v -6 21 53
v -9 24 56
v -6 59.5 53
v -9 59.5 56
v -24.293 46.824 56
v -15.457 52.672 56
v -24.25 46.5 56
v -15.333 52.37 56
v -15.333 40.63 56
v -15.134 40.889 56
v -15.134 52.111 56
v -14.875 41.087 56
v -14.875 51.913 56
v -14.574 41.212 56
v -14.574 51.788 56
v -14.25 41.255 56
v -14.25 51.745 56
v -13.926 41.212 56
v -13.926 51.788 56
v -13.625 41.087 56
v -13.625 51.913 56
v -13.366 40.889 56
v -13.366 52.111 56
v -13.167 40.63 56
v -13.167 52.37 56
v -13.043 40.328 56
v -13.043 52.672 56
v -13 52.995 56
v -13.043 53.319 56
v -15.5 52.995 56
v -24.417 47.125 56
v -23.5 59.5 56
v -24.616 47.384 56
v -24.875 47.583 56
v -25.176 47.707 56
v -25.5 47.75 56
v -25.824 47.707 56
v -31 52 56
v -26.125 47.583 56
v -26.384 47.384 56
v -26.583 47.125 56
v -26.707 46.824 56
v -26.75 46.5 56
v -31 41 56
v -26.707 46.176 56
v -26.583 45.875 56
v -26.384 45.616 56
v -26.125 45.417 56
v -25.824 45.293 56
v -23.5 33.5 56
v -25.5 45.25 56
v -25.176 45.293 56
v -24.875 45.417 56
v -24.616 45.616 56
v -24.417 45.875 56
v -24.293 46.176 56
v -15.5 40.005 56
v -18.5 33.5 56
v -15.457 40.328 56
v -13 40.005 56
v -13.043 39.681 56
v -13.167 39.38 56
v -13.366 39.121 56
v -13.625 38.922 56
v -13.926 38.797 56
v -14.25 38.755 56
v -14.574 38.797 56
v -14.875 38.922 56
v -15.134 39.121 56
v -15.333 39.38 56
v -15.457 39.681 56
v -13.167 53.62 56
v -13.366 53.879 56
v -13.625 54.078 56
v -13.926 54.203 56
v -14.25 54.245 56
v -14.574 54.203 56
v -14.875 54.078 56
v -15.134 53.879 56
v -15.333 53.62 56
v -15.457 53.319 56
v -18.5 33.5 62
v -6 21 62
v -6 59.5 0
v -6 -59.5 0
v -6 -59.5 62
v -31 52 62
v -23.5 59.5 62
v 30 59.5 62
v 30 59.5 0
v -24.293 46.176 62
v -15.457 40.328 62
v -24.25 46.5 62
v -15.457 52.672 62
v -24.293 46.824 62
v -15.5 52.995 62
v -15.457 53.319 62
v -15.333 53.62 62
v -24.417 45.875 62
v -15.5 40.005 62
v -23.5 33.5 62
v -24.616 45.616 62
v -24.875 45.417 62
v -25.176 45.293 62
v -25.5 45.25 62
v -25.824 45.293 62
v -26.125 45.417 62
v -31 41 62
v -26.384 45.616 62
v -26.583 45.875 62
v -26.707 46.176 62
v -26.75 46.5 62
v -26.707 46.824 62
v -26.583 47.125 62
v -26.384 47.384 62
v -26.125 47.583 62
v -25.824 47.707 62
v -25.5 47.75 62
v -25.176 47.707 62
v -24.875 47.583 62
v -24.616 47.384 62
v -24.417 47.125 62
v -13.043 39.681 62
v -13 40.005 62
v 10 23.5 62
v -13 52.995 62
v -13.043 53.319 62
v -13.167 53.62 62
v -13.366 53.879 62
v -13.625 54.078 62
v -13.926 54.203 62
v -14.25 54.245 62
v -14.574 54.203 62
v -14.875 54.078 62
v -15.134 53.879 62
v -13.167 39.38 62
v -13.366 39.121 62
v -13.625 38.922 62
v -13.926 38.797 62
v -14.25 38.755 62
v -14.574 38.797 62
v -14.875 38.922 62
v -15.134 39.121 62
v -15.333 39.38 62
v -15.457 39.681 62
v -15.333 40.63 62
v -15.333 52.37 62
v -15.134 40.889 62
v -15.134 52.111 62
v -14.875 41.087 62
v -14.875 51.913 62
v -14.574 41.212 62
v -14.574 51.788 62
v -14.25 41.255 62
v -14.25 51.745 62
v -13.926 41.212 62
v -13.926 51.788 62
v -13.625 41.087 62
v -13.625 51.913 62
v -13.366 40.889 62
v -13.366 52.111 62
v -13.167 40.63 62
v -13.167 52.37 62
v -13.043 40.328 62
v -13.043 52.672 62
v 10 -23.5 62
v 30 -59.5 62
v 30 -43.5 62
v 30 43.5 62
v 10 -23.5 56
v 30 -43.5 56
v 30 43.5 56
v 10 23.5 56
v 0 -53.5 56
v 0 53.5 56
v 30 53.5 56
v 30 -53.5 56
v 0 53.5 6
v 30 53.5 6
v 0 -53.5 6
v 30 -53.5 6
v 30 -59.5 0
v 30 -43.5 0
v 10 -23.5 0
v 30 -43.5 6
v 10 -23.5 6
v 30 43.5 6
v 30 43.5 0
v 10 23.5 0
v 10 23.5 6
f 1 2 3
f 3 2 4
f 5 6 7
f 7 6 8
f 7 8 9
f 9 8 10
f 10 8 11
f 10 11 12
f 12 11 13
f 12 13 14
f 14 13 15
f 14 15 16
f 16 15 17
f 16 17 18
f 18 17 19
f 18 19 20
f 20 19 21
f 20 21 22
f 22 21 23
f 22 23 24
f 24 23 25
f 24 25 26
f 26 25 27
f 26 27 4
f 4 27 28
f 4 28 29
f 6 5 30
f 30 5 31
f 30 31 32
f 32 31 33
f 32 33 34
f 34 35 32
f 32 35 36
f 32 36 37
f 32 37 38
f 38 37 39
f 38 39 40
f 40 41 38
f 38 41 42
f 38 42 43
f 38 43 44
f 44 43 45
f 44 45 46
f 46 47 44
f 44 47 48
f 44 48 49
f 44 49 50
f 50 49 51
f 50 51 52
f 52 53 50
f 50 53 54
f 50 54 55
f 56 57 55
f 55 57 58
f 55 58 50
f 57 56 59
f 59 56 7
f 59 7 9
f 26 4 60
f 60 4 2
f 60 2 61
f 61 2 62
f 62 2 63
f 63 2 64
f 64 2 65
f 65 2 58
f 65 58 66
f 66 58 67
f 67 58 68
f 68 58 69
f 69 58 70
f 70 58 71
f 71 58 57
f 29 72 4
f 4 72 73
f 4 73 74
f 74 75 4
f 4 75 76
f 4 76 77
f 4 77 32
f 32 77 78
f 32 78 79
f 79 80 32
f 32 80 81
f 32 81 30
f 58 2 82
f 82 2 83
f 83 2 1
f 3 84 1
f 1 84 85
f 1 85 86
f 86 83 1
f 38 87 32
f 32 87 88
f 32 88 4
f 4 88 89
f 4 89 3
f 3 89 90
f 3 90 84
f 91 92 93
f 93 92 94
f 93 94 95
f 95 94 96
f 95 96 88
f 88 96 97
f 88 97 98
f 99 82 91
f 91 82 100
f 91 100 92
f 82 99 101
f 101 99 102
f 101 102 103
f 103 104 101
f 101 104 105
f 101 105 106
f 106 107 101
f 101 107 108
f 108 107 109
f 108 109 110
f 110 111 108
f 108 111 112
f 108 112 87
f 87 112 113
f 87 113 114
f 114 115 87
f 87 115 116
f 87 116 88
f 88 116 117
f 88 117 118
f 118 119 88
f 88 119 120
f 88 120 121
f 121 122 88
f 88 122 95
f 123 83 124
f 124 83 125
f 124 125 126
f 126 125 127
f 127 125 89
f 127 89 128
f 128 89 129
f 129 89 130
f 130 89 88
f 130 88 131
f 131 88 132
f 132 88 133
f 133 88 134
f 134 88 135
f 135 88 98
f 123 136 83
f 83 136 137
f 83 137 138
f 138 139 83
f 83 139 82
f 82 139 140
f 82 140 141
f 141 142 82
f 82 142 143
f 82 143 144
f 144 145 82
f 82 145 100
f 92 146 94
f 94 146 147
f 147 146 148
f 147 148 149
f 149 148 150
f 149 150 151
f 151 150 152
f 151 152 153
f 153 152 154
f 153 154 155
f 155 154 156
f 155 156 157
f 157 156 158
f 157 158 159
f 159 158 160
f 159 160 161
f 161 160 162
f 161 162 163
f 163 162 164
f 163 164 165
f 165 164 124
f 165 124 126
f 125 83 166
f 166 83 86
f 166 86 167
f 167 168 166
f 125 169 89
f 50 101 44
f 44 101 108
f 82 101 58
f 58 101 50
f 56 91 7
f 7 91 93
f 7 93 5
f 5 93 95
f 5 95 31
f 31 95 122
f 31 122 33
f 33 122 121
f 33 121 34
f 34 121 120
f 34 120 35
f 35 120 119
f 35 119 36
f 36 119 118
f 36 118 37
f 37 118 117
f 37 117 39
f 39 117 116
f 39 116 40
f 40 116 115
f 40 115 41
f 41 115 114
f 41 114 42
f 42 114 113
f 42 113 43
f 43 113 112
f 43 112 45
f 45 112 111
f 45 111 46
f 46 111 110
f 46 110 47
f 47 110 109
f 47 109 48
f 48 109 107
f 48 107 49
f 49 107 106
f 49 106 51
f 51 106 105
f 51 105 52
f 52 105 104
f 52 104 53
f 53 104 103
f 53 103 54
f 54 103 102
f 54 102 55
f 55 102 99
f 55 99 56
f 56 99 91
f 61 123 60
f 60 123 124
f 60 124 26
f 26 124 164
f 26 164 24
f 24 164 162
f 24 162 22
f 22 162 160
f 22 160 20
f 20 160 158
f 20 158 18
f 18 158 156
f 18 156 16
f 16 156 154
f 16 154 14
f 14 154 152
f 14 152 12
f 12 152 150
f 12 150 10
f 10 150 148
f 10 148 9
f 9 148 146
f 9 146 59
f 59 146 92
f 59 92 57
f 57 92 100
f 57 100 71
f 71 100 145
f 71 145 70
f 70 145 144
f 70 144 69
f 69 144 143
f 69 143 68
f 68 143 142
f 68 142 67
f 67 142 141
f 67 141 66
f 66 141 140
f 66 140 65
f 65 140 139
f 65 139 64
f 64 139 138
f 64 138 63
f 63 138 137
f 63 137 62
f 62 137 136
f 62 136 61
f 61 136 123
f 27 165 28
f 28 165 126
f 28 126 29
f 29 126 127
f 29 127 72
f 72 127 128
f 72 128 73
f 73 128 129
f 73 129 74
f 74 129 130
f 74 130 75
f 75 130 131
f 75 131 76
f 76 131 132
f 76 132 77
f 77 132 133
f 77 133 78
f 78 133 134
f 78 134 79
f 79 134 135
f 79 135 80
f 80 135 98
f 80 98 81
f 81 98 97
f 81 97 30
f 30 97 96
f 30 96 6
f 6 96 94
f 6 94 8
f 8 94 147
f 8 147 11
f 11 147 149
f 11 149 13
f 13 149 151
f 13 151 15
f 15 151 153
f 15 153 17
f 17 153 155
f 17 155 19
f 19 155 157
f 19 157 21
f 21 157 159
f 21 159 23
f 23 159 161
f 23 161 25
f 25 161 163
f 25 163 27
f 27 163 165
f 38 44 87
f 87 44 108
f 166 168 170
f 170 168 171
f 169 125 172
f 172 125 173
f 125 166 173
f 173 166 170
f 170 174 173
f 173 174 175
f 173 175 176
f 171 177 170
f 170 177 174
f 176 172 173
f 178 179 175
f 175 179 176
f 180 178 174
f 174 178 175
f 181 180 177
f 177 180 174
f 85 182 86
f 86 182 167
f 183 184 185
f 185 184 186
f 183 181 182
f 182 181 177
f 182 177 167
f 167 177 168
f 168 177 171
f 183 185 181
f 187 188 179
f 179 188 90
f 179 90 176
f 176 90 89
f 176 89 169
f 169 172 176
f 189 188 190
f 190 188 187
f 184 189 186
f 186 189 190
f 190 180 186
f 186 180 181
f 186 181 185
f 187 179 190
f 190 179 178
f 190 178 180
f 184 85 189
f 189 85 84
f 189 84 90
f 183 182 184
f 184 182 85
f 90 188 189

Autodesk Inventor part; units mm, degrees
ref_plane "YZ Plane" through (0, 0, 0) normal (1, 0, 0) x (0, 1, 0)
ref_plane "XZ Plane" through (0, 0, 0) normal (0, 1, 0) x (-1, 0, 0)
ref_plane "XY Plane" through (0, 0, 0) normal (0, 0, 1) x (1, 0, 0)
sketch "Sketch1" plane through (0, 0, 0) normal (0, 0, 1) x (1, 0, 0)
  line L0 (0, 0) -> (0, 53.5)
  line L1 (0, 53.5) -> (30, 53.5)
  line L2 (30, 53.5) -> (30, 43.5)
  line L3 (30, 43.5) -> (10, 23.5)
  line L4 (10, 23.5) -> (10, 0)
  line L5 (-6, 0) -> (36, 0) projected
  line L6 (0, 0) -> (0, -53.5)
  line L7 (0, -53.5) -> (30, -53.5)
  line L8 (30, -53.5) -> (30, -43.5)
  line L9 (30, -43.5) -> (10, -23.5)
  line L10 (10, -23.5) -> (10, 0)
  dimension "d0" = 53.5
  dimension "d1" = 10
  dimension "d2" = 10
  dimension "d3" = 135
  dimension "d4" = 30
extrude "Extrusion1" add sketch "Sketch1" along normal blind 6
sketch "Sketch2" plane through (0, 0, 0) normal (0, 0, 1) x (1, 0, 0)
  line L0 (0, -53.5) -> (30, -53.5) projected
  line L1 (0, 53.5) -> (0, -53.5) projected
  line L2 (30, 53.5) -> (0, 53.5) projected
  line L3 (30, 53.5) -> (0, 53.5) projected
  line L4 (30, 53.5) -> (30, 59.5)
  line L5 (30, 59.5) -> (-6, 59.5)
  line L6 (-6, 59.5) -> (-6, -59.5)
  line L7 (-6, -59.5) -> (30, -59.5)
  line L8 (30, -59.5) -> (30, -53.5)
  point P0 (0, 0)
  dimension "d7" = 6
  dimension "d8" = 6
  dimension "d9" = 6
extrude "Extrusion2" add sketch "Sketch2" along normal blind 31
mirror "Mirror1" about plane through (12, 0, 31) normal (0, 0, 1) of "Extrusion1", "Extrusion2"
sketch "Sketch4" plane through (0, 0, 62) normal (0, 0, 1) x (1, 0, 0)
  line L0 (-6, 59.5) -> (-6, -59.5) construction
  line L1 (30, 59.5) -> (-6, 59.5) construction
  line L2 (-6, 59.5) -> (-31, 59.5)
  line L3 (-31, 59.5) -> (-31, 33.5)
  line L4 (-31, 33.5) -> (-6, 33.5)
  line L5 (-6, 59.5) -> (-6, -59.5) projected
  line L6 (-6, 59.5) -> (-6, 33.5)
  line L7 (-18, 22.2914) -> (-18, 69.8308) construction
  line L8 (-26.7913, 46.5) -> (-0.8939, 46.5) construction
  circle A0 centre (-18, 46.5) radius 7.5 construction
  circle A1 centre (-25.5, 46.5) radius 1.25
  circle A2 centre (-14.25, 40.0048) radius 1.25
  circle A3 centre (-14.25, 52.9952) radius 1.25
  point P0 (0, 0)
  dimension "d39" = 15
  dimension "d26" = 25
  dimension "d27" = 26
  dimension "d30" = 12
  dimension "d38" = 13
  dimension "d40" = 2.5
  dimension "d43" = 360
extrude "Extrusion3" add sketch "Sketch4" against normal blind 6
chamfer "Chamfer1" distance 7.5 angle 45 2 edges at (-31, 33.5, 59) (-31, 59.5, 59)
chamfer "Chamfer2" distance 12.5 angle 45 1 edges at (-6, 33.5, 59)
chamfer "Chamfer3" distance 3 angle 45 1 edges at (-6, 46.5, 56)
ref_plane "Work Plane1" through (0, 0, 62) normal (-1, 0, 0) x (0, 1, 0)
equation "\"d0\" = 0.5 * width"
equation "\"d1\" = border"
equation "\"d2\" = border"
equation "\"d5\" = wall_thickness"
equation "\"d7\" = wall_thickness"
equation "\"d8\" = wall_thickness"
equation "\"d9\" = wall_thickness"
equation "\"d10\" = wall_thickness + 0.5 * depth"
equation "\"d38\" = 0.5 * d27"
equation "\"d33\" = wall_thickness"
equation "\"width\" = 107"
equation "\"depth\" = 50"
equation "\"border\" = 10"
equation "\"wall_thickness\" = 6"
properties part number "_3DPrint"
